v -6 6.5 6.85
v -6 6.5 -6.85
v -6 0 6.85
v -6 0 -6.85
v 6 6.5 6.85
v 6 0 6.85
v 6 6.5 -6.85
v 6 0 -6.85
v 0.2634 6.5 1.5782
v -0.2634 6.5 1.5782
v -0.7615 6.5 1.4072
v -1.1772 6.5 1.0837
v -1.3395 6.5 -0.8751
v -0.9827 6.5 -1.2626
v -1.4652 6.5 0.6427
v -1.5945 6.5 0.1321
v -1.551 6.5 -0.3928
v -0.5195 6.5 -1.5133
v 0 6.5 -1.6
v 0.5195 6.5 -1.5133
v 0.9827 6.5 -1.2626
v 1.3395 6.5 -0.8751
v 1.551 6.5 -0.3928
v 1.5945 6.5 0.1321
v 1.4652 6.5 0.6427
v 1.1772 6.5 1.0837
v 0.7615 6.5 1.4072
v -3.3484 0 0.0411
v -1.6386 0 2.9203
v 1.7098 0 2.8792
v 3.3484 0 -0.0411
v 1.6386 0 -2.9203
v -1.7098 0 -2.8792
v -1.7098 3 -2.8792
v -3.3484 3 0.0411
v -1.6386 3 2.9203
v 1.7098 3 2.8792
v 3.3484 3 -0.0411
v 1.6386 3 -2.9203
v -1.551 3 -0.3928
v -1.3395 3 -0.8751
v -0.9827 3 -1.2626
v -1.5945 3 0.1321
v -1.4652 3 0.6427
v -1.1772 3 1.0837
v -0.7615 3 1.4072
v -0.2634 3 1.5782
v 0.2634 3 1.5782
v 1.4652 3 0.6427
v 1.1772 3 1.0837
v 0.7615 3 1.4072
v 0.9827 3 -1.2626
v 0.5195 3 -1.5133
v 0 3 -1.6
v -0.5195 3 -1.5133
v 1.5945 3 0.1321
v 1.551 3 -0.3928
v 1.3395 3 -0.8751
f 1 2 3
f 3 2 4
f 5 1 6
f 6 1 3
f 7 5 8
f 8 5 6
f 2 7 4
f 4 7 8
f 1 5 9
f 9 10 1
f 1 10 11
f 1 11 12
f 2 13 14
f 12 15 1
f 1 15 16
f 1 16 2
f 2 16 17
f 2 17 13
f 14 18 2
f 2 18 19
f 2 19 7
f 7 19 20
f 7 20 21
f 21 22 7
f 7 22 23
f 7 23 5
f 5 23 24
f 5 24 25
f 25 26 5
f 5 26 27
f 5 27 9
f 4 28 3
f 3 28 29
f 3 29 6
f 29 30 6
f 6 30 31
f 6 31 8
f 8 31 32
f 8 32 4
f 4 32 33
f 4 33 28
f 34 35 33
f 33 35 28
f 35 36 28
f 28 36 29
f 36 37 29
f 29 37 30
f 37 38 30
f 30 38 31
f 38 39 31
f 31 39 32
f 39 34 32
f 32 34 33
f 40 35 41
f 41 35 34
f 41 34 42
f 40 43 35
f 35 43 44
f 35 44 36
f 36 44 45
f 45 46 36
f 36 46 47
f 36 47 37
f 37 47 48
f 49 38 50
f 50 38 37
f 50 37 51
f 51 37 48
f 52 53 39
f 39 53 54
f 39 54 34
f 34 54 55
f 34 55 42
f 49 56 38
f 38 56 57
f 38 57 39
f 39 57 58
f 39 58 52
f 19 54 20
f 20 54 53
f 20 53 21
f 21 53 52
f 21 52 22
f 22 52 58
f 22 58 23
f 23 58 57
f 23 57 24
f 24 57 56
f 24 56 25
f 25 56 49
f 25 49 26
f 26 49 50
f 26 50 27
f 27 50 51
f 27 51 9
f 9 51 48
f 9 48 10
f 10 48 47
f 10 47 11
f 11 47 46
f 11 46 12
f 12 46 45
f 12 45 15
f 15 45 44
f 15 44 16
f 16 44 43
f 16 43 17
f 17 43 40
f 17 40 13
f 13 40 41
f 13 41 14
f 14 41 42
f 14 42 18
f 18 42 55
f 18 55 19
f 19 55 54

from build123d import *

# Parameters (mm, degrees)
SKETCH4_W               = 12
SKETCH4_H               = 13.7
BOSS_EXTRUDE2_DEPTH     = 6.5
CUT_EXTRUDE1_DEPTH      = 3
CUT_EXTRUDE2_DEPTH      = 12.188051662
CUT_EXTRUDE2_DEPTH_BACK = 12.188051662
SKETCH5_R               = 1.6


with BuildPart() as part:
    # Sketch4 → Boss-Extrude2 (new body)
    with BuildSketch(Plane(origin=(0, 0, 0), x_dir=(1, 0, 0), z_dir=(0, 1, 0))):
        Rectangle(SKETCH4_W, SKETCH4_H)
    extrude(amount=BOSS_EXTRUDE2_DEPTH)

    # Sketch3 → Cut-Extrude1 (cut)
    with BuildSketch(Plane.XZ):
        Polygon((1.638566399, -2.920348179), (3.348378911, -0.041133962), (1.709812512, 2.879214217), (-1.638566399, 2.920348179), (-3.348378911, 0.041133962), (-1.709812512, -2.879214217), align=None)
    extrude(amount=-CUT_EXTRUDE1_DEPTH, mode=Mode.SUBTRACT)

    # Sketch5 → Cut-Extrude2 (cut, two sides: drawn at the far end of the back side and taken through both)
    with BuildSketch(Plane.XZ.offset(-CUT_EXTRUDE2_DEPTH_BACK)):
        with Locations(Location((0, 0, 0), (0, 0, 270))):
            Circle(SKETCH5_R)
    extrude(amount=CUT_EXTRUDE2_DEPTH + CUT_EXTRUDE2_DEPTH_BACK, mode=Mode.SUBTRACT)


solid = part.part
